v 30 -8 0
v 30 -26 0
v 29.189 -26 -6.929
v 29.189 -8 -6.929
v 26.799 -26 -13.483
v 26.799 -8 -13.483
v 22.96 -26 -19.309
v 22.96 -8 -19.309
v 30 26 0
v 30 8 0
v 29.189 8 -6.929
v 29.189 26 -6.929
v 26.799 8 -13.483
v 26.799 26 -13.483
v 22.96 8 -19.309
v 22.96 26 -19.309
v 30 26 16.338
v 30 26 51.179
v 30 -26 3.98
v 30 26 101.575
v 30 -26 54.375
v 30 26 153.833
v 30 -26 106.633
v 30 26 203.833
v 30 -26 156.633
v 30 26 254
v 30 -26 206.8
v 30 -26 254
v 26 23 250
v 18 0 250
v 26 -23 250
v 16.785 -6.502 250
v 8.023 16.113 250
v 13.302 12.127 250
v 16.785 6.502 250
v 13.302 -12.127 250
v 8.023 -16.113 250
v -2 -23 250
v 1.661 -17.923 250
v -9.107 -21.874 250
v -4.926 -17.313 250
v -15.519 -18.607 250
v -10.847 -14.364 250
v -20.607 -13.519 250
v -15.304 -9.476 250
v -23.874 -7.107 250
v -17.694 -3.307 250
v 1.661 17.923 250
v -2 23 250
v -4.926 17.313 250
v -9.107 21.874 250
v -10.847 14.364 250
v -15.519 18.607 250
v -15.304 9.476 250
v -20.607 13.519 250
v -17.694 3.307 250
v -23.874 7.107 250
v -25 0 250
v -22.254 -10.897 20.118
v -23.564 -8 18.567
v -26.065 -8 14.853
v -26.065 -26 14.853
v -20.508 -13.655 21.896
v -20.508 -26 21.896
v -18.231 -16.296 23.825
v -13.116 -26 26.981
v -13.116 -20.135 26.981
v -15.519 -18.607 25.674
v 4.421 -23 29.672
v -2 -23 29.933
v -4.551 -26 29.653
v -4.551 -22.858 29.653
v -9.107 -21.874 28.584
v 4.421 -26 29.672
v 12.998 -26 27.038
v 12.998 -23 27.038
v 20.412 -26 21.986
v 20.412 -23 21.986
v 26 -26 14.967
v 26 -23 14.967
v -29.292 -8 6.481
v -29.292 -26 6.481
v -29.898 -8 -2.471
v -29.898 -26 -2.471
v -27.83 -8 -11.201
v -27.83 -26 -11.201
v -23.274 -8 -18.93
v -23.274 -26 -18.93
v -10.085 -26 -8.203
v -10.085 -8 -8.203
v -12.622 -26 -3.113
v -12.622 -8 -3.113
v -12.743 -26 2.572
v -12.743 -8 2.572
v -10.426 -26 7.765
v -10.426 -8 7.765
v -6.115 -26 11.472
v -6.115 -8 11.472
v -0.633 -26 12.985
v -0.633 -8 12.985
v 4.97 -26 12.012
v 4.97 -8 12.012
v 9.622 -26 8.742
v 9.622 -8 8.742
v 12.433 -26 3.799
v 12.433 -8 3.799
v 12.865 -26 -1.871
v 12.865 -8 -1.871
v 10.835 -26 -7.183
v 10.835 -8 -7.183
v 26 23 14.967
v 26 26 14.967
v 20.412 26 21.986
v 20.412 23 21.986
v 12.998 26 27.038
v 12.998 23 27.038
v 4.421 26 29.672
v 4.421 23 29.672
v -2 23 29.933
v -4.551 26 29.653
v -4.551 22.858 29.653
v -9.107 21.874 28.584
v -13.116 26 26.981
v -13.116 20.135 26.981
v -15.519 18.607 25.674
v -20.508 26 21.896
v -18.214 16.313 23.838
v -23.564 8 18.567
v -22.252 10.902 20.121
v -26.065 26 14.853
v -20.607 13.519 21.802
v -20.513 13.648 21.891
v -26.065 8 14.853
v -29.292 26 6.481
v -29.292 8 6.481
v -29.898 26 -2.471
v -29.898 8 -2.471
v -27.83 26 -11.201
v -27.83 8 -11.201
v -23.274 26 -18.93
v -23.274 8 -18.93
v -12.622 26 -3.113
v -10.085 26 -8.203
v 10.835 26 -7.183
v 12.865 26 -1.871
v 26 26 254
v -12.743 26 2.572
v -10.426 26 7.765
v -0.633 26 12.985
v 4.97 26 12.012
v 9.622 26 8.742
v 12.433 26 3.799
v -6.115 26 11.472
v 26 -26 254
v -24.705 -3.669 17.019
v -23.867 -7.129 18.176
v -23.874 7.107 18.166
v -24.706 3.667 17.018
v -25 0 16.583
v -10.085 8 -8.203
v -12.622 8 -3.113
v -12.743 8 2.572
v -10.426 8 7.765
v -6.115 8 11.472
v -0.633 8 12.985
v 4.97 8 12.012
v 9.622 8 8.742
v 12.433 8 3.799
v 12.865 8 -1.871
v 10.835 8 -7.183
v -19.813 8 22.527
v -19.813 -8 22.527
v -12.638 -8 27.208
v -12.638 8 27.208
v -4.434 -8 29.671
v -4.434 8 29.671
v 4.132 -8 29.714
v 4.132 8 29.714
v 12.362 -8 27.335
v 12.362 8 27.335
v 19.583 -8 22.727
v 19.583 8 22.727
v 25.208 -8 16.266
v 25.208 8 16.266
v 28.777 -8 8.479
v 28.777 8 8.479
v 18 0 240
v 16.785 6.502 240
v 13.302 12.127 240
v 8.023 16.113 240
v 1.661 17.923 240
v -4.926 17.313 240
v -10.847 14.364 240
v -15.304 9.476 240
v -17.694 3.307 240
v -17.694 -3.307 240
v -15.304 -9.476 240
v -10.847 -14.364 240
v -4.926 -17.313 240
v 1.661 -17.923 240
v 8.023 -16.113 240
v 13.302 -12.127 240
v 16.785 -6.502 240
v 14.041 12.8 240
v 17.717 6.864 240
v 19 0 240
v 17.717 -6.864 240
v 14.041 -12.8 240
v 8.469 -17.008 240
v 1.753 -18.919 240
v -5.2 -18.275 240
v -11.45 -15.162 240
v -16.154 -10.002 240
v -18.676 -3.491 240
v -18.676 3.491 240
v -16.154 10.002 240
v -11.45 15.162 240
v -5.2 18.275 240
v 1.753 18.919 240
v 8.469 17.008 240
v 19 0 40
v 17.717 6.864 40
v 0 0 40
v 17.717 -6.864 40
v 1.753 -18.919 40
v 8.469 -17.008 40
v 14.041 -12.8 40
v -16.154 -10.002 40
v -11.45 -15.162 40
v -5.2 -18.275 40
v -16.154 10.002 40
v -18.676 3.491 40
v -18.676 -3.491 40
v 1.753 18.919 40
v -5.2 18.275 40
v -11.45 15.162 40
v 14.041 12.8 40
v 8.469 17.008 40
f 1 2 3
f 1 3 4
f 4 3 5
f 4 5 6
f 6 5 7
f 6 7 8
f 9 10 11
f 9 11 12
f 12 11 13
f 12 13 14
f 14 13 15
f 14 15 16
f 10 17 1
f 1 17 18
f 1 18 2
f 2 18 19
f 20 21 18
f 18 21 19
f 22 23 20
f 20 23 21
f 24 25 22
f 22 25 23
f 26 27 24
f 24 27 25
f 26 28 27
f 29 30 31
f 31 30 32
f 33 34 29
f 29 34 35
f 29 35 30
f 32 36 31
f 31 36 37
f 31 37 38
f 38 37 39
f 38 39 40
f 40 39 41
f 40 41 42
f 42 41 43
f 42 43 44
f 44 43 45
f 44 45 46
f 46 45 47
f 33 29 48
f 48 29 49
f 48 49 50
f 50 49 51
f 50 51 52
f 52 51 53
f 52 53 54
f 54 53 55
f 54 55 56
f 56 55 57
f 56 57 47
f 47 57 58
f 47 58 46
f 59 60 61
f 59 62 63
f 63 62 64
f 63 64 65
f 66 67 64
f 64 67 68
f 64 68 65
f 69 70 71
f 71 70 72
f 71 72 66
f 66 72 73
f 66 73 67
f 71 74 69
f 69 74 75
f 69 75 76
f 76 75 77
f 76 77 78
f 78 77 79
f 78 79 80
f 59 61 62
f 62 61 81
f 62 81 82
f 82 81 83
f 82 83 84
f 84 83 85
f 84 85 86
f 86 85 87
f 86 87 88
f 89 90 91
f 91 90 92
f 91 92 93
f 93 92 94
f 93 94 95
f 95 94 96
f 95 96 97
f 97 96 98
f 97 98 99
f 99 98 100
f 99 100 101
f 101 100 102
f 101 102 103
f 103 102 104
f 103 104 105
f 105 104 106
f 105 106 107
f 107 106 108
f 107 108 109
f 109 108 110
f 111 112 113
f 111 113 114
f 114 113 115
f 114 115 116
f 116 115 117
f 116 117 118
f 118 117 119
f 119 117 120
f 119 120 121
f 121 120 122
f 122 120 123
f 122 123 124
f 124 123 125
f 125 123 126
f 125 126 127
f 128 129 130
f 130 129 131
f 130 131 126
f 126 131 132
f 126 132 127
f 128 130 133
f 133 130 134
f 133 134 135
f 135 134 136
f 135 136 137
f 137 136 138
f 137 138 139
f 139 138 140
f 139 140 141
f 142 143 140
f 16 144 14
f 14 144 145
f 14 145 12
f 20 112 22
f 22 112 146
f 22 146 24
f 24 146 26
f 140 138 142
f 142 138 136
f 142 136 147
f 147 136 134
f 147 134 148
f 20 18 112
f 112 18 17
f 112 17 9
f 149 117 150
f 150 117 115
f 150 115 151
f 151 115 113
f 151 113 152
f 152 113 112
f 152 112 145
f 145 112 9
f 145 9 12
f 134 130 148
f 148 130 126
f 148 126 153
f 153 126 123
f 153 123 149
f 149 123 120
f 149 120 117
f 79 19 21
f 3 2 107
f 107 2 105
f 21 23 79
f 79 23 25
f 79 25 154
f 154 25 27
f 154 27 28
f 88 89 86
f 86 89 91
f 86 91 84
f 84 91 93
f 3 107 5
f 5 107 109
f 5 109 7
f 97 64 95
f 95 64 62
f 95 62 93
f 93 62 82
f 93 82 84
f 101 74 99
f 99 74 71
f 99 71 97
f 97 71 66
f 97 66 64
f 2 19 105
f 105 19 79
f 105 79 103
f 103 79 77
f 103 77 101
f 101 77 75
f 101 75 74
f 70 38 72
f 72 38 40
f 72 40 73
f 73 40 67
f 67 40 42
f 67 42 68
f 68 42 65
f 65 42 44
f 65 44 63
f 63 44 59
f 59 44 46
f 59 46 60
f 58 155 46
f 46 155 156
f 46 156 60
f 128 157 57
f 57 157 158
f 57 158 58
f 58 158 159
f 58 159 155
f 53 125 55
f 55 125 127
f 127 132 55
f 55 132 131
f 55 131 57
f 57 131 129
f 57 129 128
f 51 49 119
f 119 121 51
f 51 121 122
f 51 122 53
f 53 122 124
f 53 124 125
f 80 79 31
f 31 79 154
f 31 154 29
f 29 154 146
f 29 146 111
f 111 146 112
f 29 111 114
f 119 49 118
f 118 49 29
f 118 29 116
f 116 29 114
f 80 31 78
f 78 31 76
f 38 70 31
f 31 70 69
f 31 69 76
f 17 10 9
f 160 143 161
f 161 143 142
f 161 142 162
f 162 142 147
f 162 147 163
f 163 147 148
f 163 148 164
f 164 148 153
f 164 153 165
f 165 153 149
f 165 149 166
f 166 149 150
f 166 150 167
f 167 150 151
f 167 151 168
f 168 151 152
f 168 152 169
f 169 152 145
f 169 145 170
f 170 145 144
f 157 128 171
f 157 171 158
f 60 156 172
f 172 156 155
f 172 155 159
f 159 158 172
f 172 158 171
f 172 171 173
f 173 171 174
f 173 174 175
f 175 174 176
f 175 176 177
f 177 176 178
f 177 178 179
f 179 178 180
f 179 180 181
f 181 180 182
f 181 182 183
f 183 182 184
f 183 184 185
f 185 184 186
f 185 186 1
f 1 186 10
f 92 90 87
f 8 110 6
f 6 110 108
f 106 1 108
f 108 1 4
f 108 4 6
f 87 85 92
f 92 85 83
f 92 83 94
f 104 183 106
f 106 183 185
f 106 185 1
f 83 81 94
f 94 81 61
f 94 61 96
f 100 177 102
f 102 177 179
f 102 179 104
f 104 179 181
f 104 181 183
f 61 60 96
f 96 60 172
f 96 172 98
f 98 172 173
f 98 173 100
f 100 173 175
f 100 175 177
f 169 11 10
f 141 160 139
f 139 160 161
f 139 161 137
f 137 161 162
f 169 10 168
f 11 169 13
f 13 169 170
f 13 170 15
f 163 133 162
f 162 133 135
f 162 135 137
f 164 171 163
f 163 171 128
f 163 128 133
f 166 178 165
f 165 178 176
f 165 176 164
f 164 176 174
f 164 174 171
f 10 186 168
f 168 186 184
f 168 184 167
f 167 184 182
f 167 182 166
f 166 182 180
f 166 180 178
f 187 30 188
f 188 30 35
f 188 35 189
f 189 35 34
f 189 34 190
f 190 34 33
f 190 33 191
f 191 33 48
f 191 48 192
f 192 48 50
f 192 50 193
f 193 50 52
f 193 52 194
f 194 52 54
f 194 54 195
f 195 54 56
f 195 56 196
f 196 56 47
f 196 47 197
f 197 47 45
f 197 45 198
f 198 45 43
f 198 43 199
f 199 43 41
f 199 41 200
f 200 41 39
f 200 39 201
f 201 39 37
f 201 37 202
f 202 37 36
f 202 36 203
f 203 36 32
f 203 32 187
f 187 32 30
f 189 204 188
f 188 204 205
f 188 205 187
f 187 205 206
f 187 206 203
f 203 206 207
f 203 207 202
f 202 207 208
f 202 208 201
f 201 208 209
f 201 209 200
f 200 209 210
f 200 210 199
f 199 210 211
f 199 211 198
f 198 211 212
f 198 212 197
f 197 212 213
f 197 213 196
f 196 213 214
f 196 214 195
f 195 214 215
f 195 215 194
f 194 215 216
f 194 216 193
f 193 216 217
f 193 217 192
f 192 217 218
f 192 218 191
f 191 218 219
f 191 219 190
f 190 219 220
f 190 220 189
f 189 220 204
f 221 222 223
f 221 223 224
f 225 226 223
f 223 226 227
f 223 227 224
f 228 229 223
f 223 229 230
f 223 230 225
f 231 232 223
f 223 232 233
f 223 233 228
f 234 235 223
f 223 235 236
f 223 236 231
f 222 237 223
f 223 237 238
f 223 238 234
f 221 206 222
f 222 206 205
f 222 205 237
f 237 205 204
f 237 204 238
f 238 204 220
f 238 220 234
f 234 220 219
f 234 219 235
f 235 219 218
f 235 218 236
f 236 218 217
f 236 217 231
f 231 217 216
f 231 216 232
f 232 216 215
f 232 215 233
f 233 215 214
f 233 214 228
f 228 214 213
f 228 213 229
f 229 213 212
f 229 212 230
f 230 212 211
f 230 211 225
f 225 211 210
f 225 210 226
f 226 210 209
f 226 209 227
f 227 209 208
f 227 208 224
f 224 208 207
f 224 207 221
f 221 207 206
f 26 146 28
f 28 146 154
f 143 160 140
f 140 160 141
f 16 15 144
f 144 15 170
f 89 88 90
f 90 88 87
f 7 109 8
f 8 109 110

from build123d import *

# Parameters (mm, degrees)
SKETCH1_R           = 30
BOSS_EXTRUDE1_DEPTH = 26
BOSS_EXTRUDE2_DEPTH = 250
SKETCH3_R           = 13
CUT_EXTRUDE1_DEPTH  = 26
SKETCH1_2_R         = 30
CUT_EXTRUDE2_DEPTH  = 8
SKETCH4_R           = 19
CUT_EXTRUDE3_DEPTH  = 210
SKETCH6_R           = 19
SKETCH6_R_2         = 18
BOSS_EXTRUDE3_DEPTH = 10
SKETCH7_W           = 4
SKETCH7_H           = 4
BOSS_EXTRUDE4_DEPTH = 26
CUT_EXTRUDE4_REACH  = 262.998


with BuildPart() as part:
    # Sketch1 → Boss-Extrude1 (new, symmetric)
    with BuildSketch(Plane(origin=(0, 0, 0), x_dir=(1, 0, 0), z_dir=(0, 1, 0))):
        with Locations(Location((0, 0, 0), (0, 0, 90))):
            Circle(SKETCH1_R)
    extrude(amount=BOSS_EXTRUDE1_DEPTH, both=True)

    # Sketch2 → Boss-Extrude2 (add)
    with BuildSketch(Plane.XY):
        with BuildLine():
            Line((30, 26), (30, -26))
            Line((30, -26), (26, -26))
            Line((26, -26), (26, -23))
            Line((26, -23), (-2, -23))
            ThreePointArc((-2, -23), (-25, 0), (-2, 23))
            Line((-2, 23), (26, 23))
            Line((26, 23), (26, 26))
            Line((26, 26), (30, 26))
        make_face()
    extrude(amount=BOSS_EXTRUDE2_DEPTH)

    # Sketch3 → Cut-Extrude1 (cut, symmetric)
    with BuildSketch(Plane(origin=(0, 0, 0), x_dir=(1, 0, 0), z_dir=(0, 1, 0))):
        with Locations(Location((0, 0, 0), (0, 0, 270))):
            Circle(SKETCH3_R)
    extrude(amount=CUT_EXTRUDE1_DEPTH, both=True, mode=Mode.SUBTRACT)

    # Sketch1<2> → Cut-Extrude2 (cut, symmetric)
    with BuildSketch(Plane(origin=(0, 0, 0), x_dir=(1, 0, 0), z_dir=(0, 1, 0))):
        Circle(SKETCH1_2_R)
    extrude(amount=CUT_EXTRUDE2_DEPTH, both=True, mode=Mode.SUBTRACT)

    # Sketch4 → Cut-Extrude3 (cut)
    with BuildSketch(Plane.XY.offset(250)):
        Circle(SKETCH4_R)
    extrude(amount=-CUT_EXTRUDE3_DEPTH, mode=Mode.SUBTRACT)

    # Sketch6 → Boss-Extrude3 (add)
    with BuildSketch(Plane.XY.offset(250)):
        Circle(SKETCH6_R)
        Circle(SKETCH6_R_2, mode=Mode.SUBTRACT)
    extrude(amount=-BOSS_EXTRUDE3_DEPTH)

    # Sketch7 → Boss-Extrude4 (add, symmetric)
    with BuildSketch(Plane(origin=(0, 0, 0), x_dir=(1, 0, 0), z_dir=(0, 1, 0))):
        with Locations((28, -252)):
            Rectangle(SKETCH7_W, SKETCH7_H)
    extrude(amount=BOSS_EXTRUDE4_DEPTH, both=True)

    # Cut-Extrude4: up to this face of the body (flat: up to its plane)
    cut_extrude4_end = Plane(part.part.faces().sort_by_distance((28.902688409, -26, 134.483314774))[0])
    # Sketch9 → Cut-Extrude4 (cut, up to the picked face)
    with BuildSketch(Plane(origin=(0, 26, 0), x_dir=(1, 0, 0), z_dir=(0, 1, 0)), mode=Mode.PRIVATE) as cut_extrude4_sk1:
        with BuildLine():
            Line((-23.273636947, 18.92981308), (-10.085242677, 8.202919002))
            ThreePointArc((-10.085242677, 8.202919002), (0.632804436, 12.984589271), (10.835093825, 7.183365632))
            Line((10.835093825, 7.183365632), (22.960343515, 19.308615323))
            ThreePointArc((22.960343515, 19.308615323), (-0.245786449, 29.998993133), (-23.273636947, 18.92981308))
        make_face()
    cut_extrude4_tool1 = split(extrude(cut_extrude4_sk1.sketch, amount=-CUT_EXTRUDE4_REACH, mode=Mode.PRIVATE), bisect_by=cut_extrude4_end, keep=Keep.BOTH, mode=Mode.PRIVATE)
    add(cut_extrude4_tool1.solids().sort_by(Axis((0.119463, 26, -19.65599), (0, -1, 0)))[0], mode=Mode.SUBTRACT)


solid = part.part
